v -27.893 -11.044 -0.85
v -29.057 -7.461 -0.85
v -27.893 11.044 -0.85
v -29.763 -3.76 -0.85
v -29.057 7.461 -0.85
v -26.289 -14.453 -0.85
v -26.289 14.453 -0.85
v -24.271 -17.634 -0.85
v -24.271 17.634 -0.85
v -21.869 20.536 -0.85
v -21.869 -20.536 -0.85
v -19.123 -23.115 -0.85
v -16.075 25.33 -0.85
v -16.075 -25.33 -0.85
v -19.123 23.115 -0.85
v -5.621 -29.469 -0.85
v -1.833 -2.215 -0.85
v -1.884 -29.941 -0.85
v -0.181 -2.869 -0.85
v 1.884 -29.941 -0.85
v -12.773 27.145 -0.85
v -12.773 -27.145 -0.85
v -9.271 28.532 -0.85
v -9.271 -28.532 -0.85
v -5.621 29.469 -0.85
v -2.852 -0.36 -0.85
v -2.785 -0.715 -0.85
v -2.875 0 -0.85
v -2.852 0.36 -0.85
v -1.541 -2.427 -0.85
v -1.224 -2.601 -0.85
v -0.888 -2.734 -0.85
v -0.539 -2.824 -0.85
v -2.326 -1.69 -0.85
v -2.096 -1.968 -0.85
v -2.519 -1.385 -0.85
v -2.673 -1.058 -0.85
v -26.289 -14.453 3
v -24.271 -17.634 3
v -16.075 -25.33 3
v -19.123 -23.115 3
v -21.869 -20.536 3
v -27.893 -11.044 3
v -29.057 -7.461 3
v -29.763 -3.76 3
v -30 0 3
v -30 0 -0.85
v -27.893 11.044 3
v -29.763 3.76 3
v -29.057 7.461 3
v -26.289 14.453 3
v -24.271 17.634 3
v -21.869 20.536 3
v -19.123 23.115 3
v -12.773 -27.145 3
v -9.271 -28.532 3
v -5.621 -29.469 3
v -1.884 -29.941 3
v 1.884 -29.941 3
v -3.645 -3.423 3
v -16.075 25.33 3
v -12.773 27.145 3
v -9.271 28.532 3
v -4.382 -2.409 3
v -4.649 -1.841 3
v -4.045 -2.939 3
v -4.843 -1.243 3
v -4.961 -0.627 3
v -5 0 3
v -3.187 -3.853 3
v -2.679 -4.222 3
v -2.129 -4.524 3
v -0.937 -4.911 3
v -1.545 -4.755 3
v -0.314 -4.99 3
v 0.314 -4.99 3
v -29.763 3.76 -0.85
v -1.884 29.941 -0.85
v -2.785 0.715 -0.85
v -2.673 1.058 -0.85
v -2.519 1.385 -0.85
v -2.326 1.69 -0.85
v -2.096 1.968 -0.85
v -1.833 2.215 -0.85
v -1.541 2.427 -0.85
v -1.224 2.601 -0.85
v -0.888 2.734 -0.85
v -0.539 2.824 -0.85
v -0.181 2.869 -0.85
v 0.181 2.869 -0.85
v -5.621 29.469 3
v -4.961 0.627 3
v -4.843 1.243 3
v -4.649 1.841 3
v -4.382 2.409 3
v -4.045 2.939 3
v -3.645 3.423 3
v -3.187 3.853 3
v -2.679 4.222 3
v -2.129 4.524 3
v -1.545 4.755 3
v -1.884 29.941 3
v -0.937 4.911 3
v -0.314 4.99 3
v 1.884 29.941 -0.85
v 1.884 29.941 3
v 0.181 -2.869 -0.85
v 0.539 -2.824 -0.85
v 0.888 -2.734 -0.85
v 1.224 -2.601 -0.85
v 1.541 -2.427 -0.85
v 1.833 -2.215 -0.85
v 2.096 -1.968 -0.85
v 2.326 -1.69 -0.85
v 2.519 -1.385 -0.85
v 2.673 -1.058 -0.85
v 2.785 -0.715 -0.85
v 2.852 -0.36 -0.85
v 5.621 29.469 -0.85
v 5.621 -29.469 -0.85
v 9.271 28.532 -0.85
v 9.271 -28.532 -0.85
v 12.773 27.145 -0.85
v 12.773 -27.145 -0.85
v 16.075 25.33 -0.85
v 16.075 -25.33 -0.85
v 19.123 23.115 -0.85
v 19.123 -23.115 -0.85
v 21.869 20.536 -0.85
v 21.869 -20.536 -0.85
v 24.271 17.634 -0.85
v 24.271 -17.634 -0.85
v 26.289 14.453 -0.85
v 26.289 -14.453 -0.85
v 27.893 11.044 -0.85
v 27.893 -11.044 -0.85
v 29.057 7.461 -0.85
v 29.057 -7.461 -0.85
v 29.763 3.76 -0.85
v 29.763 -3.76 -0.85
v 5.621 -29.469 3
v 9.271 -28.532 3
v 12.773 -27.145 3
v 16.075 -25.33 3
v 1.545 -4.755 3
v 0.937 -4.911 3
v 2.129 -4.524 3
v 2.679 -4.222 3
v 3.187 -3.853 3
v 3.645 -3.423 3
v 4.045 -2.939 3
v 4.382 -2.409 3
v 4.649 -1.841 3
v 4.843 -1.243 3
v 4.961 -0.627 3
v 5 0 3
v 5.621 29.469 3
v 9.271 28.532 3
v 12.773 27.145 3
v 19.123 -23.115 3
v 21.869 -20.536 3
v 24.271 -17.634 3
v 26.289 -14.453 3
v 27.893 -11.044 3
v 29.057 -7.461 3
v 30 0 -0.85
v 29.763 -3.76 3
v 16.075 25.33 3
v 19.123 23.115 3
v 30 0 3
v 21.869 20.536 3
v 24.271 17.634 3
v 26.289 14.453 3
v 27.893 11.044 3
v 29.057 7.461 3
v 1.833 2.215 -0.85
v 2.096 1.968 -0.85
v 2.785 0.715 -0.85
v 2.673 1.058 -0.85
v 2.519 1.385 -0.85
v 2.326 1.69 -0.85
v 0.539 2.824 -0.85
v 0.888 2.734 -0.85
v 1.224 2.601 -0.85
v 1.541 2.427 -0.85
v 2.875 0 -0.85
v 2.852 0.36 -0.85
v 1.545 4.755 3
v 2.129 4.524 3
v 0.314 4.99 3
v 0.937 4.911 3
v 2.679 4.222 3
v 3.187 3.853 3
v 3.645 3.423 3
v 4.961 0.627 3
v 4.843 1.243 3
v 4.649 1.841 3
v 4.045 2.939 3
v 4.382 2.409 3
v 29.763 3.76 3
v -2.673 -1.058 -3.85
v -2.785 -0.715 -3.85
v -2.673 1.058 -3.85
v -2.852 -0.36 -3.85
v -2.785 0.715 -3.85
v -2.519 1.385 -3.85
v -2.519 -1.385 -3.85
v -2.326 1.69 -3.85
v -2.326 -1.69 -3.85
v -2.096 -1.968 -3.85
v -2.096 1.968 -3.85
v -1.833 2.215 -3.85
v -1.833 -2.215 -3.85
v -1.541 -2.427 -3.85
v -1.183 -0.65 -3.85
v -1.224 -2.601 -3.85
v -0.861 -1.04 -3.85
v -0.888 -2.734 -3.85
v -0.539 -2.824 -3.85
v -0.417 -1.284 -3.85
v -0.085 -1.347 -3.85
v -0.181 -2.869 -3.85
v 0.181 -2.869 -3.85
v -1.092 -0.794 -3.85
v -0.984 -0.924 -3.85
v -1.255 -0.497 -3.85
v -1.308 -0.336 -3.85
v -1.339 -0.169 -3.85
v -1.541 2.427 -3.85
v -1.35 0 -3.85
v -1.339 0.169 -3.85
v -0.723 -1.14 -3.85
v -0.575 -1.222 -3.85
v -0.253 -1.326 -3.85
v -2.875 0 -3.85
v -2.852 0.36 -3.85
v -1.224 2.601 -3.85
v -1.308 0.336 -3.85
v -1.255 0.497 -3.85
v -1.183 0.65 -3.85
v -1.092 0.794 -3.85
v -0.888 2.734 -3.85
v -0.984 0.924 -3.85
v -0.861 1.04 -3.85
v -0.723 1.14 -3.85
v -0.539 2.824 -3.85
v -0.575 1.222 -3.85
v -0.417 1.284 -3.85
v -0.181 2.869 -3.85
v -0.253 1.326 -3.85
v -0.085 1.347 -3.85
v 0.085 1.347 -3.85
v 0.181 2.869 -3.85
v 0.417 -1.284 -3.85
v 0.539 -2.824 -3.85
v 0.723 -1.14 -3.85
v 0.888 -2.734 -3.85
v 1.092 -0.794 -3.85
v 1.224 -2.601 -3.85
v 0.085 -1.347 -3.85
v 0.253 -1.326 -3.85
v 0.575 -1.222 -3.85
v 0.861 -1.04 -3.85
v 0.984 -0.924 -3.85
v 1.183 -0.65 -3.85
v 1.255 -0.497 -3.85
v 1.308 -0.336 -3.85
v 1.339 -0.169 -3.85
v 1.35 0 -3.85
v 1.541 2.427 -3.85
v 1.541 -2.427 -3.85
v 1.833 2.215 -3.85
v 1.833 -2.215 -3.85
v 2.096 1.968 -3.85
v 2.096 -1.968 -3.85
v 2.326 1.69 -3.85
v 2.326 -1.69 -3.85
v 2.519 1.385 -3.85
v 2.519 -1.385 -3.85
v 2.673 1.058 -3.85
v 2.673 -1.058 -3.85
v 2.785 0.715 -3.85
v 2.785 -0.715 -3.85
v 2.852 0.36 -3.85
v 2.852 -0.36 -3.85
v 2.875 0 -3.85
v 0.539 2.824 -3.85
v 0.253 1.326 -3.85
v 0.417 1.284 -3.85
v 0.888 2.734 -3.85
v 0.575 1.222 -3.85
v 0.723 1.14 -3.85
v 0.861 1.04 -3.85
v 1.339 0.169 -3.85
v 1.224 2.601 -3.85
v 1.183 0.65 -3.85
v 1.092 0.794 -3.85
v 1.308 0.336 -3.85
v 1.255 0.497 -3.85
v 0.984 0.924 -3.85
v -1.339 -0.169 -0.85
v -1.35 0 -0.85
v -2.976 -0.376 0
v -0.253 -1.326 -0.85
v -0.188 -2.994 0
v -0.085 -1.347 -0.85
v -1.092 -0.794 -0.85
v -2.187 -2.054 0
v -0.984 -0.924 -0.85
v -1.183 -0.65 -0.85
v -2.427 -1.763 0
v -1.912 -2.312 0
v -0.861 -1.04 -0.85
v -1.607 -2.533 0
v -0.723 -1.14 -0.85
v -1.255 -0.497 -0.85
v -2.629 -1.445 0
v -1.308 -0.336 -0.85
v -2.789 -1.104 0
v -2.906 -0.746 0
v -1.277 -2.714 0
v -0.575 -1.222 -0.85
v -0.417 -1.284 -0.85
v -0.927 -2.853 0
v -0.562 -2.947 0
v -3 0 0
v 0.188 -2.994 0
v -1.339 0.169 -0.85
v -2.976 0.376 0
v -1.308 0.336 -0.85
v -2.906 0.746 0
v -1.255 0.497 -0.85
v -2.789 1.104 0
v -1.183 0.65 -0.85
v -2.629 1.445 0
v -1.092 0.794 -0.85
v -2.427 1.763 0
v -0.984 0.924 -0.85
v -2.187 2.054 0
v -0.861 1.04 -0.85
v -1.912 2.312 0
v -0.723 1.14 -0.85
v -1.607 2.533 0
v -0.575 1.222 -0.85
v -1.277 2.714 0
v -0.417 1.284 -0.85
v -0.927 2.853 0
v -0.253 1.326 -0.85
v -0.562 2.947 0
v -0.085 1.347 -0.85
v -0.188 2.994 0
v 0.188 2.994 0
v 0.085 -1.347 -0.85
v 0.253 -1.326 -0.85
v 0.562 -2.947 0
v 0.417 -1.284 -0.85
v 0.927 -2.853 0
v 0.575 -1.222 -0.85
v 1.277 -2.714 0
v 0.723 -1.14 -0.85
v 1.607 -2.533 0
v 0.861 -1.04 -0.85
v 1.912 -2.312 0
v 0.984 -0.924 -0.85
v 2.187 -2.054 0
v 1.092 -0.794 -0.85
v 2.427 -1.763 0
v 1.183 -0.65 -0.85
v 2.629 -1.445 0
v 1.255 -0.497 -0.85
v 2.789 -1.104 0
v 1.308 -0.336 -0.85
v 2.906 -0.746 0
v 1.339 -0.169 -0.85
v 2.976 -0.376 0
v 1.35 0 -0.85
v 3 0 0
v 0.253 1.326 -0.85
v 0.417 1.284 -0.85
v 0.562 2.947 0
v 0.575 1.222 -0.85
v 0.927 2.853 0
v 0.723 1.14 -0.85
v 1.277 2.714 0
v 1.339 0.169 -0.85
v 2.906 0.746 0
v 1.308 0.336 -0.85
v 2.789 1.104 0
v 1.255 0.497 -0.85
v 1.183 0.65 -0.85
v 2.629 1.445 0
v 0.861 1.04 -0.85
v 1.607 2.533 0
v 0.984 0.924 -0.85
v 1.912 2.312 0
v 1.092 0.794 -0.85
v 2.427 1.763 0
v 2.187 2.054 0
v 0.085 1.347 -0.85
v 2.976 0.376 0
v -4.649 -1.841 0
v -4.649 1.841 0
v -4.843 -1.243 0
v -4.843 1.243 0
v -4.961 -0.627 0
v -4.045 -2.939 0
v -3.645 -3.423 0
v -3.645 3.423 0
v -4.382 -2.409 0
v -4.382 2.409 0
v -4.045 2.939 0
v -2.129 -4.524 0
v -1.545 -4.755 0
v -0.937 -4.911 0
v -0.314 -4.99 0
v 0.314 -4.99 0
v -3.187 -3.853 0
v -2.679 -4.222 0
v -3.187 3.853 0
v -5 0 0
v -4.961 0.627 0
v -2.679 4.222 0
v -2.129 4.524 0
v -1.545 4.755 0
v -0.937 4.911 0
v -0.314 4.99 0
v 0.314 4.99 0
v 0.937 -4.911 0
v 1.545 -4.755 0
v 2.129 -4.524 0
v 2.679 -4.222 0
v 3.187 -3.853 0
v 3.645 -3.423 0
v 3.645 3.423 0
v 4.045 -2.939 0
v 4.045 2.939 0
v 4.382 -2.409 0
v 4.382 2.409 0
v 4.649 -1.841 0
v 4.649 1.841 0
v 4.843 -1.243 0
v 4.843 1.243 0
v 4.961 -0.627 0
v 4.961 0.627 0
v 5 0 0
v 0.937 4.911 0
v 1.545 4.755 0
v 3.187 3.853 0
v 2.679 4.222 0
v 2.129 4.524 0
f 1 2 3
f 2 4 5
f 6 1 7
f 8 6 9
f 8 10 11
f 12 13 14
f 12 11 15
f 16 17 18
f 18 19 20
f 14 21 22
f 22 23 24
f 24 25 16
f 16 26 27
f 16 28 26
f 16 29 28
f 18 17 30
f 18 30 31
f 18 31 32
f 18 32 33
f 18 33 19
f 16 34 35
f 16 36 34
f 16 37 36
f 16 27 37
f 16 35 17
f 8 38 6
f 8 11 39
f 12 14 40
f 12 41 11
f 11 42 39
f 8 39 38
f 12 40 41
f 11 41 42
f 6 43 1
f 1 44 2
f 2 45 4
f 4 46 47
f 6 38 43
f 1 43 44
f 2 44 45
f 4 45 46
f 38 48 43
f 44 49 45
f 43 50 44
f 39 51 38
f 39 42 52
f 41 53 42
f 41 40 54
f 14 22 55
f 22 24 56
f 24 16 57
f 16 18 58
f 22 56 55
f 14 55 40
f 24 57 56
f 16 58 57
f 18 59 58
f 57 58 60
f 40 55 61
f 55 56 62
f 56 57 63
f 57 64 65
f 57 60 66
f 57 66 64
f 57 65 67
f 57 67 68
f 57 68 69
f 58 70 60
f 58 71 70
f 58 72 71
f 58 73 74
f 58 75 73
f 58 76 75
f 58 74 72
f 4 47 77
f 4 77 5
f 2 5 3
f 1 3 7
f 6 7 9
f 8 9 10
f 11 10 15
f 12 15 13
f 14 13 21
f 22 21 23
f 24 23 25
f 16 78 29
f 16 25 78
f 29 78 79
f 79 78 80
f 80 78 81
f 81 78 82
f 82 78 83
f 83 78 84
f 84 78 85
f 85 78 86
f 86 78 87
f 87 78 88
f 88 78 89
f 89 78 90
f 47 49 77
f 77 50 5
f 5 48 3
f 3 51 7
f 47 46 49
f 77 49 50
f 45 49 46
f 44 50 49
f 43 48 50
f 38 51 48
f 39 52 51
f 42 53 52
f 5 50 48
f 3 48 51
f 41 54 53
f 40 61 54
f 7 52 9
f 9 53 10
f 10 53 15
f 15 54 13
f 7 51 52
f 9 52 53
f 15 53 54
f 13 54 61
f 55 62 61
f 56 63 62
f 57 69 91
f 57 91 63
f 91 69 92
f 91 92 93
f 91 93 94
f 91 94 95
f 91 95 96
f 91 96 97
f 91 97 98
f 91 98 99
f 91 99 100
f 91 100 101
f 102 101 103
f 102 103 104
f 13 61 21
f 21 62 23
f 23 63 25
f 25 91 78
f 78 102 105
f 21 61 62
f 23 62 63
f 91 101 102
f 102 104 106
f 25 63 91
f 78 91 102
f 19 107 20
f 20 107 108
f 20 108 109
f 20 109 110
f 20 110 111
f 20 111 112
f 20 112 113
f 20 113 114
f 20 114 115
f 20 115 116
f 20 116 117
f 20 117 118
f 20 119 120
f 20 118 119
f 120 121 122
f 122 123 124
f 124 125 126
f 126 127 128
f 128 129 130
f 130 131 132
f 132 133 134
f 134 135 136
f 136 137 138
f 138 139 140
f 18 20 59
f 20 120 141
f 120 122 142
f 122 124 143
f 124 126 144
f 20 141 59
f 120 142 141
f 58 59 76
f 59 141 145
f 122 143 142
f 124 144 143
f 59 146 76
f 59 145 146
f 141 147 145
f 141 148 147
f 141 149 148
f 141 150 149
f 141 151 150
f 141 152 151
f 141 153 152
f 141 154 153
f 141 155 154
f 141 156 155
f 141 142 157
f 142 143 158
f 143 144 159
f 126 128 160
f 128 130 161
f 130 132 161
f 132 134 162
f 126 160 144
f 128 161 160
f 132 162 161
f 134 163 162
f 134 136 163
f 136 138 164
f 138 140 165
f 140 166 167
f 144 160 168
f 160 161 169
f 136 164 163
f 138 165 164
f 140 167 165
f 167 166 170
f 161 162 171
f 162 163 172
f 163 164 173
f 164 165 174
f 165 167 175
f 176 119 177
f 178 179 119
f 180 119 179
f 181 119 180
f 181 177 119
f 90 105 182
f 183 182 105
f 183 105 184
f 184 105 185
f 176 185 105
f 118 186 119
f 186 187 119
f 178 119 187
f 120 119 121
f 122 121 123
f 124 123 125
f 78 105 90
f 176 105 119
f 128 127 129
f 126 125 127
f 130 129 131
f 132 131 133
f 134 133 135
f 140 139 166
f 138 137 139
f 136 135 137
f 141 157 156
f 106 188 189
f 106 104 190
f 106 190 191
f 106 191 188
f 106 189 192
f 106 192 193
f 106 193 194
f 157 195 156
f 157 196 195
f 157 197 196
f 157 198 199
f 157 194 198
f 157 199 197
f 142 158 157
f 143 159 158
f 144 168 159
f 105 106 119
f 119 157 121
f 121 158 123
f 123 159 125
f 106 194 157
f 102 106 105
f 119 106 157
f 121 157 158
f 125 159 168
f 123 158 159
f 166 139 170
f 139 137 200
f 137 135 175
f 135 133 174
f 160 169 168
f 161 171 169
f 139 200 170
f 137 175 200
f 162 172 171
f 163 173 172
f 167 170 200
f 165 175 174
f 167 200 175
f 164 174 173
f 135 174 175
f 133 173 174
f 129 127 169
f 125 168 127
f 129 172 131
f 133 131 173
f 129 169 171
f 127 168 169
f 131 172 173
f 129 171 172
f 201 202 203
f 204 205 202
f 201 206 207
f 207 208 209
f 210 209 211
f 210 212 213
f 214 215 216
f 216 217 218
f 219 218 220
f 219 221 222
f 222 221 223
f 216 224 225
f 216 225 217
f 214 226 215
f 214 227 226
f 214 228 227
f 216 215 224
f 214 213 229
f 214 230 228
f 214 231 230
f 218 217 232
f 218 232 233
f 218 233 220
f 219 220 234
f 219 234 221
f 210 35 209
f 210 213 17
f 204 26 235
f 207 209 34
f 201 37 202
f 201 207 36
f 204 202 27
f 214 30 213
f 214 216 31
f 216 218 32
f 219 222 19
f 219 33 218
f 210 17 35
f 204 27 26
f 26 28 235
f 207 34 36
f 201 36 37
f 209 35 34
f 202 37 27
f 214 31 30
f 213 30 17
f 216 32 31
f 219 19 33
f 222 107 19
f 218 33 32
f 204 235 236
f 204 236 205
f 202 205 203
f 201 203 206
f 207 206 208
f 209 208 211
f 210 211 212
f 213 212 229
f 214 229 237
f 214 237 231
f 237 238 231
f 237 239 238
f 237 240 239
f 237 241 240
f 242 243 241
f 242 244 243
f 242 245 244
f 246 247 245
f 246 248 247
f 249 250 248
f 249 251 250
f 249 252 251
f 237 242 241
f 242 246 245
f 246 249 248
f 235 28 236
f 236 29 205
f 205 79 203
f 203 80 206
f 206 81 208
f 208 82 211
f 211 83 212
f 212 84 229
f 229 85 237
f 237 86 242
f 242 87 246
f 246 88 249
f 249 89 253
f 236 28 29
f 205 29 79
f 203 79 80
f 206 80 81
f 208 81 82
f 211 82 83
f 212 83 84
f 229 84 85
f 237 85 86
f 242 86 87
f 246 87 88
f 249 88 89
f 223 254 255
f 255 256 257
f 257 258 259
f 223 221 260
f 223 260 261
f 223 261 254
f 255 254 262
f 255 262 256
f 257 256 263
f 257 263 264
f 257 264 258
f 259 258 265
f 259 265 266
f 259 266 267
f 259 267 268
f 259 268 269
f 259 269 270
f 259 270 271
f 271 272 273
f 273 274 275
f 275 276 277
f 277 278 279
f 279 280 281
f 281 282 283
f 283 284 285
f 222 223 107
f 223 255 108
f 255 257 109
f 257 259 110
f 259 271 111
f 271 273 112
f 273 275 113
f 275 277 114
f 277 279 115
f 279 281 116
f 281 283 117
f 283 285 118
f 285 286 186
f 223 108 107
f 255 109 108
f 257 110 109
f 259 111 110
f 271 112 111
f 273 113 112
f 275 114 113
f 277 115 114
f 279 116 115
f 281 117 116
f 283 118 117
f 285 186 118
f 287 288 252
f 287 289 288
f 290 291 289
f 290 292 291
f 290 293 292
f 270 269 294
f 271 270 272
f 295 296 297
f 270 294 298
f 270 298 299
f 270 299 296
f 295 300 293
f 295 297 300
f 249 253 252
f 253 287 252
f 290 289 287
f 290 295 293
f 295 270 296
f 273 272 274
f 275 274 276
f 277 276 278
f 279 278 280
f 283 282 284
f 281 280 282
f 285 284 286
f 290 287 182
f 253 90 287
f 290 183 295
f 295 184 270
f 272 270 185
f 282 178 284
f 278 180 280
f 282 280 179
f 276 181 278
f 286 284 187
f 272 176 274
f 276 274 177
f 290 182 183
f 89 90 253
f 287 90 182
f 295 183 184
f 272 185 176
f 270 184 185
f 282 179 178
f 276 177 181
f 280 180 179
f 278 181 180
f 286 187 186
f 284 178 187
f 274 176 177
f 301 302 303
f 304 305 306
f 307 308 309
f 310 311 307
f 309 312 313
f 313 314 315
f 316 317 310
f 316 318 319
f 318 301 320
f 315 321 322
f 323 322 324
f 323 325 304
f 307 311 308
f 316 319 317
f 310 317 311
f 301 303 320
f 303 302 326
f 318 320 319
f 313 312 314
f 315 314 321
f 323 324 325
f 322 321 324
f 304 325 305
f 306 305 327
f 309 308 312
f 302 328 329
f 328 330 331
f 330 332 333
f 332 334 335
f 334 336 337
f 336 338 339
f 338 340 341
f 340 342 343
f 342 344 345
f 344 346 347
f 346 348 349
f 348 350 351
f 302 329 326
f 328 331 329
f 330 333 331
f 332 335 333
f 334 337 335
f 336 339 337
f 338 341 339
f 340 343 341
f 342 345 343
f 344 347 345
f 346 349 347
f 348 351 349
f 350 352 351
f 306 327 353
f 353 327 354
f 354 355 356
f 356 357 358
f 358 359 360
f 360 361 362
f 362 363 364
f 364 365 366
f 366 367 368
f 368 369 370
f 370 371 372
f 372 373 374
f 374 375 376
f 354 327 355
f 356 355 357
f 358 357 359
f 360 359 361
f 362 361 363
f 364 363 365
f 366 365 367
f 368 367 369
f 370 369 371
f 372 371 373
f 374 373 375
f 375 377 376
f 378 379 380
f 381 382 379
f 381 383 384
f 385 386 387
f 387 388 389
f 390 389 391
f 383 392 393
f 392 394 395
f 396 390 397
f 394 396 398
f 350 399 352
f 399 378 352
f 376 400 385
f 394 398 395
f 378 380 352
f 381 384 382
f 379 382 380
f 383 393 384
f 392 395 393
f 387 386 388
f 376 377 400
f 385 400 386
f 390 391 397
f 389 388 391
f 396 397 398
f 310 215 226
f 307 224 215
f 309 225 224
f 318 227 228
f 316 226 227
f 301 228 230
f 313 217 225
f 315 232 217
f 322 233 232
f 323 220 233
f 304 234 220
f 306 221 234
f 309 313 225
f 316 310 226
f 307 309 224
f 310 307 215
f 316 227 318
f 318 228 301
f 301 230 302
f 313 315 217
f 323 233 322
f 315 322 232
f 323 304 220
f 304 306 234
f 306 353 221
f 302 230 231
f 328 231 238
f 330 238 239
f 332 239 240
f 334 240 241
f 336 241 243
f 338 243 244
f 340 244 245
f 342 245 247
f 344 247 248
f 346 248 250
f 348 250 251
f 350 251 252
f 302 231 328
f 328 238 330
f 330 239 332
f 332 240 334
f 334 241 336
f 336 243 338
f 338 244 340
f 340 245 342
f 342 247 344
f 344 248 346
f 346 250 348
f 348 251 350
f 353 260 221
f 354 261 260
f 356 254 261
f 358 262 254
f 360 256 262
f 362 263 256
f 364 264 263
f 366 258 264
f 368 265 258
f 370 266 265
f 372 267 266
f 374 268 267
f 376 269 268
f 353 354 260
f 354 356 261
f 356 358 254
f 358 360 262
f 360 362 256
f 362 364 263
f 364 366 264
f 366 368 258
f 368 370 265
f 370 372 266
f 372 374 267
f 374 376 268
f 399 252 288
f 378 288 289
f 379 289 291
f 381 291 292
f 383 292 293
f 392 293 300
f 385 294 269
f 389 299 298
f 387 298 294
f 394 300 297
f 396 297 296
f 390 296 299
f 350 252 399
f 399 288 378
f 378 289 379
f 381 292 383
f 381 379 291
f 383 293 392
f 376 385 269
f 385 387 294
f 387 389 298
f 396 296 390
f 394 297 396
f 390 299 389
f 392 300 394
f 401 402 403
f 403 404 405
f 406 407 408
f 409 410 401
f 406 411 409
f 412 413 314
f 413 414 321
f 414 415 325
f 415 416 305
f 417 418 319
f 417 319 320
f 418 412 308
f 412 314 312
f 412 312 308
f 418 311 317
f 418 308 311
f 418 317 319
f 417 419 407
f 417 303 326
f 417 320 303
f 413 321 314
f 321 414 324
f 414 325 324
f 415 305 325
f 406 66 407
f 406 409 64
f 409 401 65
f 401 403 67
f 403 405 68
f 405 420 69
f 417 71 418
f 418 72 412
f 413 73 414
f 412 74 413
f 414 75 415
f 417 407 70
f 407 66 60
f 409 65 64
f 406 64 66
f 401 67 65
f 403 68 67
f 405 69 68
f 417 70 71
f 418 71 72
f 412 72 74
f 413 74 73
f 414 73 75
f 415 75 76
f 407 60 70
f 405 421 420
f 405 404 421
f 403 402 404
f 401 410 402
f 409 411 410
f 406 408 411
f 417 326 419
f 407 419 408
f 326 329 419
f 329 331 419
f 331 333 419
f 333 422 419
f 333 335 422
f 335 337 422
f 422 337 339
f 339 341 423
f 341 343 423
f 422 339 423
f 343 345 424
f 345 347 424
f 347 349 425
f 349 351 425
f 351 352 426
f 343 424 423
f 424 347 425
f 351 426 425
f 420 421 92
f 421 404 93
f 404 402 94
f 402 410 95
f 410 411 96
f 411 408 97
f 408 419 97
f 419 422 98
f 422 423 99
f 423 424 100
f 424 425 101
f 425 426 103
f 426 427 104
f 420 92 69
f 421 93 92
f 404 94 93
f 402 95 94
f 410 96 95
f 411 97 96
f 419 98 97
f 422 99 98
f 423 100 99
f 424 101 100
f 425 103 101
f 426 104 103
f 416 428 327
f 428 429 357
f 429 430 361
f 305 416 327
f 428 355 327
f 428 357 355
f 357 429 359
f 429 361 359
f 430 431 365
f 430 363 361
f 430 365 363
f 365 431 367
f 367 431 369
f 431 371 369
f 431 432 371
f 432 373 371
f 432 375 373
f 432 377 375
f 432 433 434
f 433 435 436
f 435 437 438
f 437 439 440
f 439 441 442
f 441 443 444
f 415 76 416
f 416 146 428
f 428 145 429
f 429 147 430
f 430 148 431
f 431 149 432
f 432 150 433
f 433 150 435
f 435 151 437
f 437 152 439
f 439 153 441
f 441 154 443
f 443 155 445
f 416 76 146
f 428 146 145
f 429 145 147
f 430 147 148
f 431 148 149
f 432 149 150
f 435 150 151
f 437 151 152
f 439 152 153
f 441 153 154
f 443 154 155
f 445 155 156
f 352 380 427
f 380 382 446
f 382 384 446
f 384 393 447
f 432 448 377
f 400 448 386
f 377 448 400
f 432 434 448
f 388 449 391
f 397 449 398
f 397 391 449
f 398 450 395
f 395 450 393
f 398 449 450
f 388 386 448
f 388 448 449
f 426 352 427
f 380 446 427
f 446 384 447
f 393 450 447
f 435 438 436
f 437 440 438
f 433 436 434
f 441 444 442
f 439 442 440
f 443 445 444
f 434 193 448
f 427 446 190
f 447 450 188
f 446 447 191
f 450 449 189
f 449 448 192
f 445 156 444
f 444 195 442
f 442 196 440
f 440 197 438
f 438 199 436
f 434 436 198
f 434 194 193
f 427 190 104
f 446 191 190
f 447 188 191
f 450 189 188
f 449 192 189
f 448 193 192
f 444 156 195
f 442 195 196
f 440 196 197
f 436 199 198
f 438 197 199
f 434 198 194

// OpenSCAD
$fn = 50;

difference() {
	union() {
		translate(v = [0, 0, -0.8500000000000001]) {
			cylinder(h = 3.85, r = 30.0);
		}
		#translate(v = [0, 0, -3.85]) {
			cylinder(h = 3.85, r = 2.875);
		}
	}
	union() {
		translate(v = [0, 0, 0]) {
			rotate(a = [0, 0, 0]) {
				difference() {
					union() {
						translate(v = [0, 0, -3.85]) {
							cylinder(h = 3.85, r = 1.0);
						}
						translate(v = [0, 0, -0.85]) {
							cylinder(h = 0.85, r1 = 1.35, r2 = 3.0);
						}
						translate(v = [0, 0, -3.85]) {
							cylinder(h = 3.85, r = 1.35);
						}
						translate(v = [0, 0, -3.85]) {
							cylinder(h = 3.85, r = 1.0);
						}
					}
					union();
				}
			}
		}
		#cylinder(h = 3, r = 5.0);
	}
}
